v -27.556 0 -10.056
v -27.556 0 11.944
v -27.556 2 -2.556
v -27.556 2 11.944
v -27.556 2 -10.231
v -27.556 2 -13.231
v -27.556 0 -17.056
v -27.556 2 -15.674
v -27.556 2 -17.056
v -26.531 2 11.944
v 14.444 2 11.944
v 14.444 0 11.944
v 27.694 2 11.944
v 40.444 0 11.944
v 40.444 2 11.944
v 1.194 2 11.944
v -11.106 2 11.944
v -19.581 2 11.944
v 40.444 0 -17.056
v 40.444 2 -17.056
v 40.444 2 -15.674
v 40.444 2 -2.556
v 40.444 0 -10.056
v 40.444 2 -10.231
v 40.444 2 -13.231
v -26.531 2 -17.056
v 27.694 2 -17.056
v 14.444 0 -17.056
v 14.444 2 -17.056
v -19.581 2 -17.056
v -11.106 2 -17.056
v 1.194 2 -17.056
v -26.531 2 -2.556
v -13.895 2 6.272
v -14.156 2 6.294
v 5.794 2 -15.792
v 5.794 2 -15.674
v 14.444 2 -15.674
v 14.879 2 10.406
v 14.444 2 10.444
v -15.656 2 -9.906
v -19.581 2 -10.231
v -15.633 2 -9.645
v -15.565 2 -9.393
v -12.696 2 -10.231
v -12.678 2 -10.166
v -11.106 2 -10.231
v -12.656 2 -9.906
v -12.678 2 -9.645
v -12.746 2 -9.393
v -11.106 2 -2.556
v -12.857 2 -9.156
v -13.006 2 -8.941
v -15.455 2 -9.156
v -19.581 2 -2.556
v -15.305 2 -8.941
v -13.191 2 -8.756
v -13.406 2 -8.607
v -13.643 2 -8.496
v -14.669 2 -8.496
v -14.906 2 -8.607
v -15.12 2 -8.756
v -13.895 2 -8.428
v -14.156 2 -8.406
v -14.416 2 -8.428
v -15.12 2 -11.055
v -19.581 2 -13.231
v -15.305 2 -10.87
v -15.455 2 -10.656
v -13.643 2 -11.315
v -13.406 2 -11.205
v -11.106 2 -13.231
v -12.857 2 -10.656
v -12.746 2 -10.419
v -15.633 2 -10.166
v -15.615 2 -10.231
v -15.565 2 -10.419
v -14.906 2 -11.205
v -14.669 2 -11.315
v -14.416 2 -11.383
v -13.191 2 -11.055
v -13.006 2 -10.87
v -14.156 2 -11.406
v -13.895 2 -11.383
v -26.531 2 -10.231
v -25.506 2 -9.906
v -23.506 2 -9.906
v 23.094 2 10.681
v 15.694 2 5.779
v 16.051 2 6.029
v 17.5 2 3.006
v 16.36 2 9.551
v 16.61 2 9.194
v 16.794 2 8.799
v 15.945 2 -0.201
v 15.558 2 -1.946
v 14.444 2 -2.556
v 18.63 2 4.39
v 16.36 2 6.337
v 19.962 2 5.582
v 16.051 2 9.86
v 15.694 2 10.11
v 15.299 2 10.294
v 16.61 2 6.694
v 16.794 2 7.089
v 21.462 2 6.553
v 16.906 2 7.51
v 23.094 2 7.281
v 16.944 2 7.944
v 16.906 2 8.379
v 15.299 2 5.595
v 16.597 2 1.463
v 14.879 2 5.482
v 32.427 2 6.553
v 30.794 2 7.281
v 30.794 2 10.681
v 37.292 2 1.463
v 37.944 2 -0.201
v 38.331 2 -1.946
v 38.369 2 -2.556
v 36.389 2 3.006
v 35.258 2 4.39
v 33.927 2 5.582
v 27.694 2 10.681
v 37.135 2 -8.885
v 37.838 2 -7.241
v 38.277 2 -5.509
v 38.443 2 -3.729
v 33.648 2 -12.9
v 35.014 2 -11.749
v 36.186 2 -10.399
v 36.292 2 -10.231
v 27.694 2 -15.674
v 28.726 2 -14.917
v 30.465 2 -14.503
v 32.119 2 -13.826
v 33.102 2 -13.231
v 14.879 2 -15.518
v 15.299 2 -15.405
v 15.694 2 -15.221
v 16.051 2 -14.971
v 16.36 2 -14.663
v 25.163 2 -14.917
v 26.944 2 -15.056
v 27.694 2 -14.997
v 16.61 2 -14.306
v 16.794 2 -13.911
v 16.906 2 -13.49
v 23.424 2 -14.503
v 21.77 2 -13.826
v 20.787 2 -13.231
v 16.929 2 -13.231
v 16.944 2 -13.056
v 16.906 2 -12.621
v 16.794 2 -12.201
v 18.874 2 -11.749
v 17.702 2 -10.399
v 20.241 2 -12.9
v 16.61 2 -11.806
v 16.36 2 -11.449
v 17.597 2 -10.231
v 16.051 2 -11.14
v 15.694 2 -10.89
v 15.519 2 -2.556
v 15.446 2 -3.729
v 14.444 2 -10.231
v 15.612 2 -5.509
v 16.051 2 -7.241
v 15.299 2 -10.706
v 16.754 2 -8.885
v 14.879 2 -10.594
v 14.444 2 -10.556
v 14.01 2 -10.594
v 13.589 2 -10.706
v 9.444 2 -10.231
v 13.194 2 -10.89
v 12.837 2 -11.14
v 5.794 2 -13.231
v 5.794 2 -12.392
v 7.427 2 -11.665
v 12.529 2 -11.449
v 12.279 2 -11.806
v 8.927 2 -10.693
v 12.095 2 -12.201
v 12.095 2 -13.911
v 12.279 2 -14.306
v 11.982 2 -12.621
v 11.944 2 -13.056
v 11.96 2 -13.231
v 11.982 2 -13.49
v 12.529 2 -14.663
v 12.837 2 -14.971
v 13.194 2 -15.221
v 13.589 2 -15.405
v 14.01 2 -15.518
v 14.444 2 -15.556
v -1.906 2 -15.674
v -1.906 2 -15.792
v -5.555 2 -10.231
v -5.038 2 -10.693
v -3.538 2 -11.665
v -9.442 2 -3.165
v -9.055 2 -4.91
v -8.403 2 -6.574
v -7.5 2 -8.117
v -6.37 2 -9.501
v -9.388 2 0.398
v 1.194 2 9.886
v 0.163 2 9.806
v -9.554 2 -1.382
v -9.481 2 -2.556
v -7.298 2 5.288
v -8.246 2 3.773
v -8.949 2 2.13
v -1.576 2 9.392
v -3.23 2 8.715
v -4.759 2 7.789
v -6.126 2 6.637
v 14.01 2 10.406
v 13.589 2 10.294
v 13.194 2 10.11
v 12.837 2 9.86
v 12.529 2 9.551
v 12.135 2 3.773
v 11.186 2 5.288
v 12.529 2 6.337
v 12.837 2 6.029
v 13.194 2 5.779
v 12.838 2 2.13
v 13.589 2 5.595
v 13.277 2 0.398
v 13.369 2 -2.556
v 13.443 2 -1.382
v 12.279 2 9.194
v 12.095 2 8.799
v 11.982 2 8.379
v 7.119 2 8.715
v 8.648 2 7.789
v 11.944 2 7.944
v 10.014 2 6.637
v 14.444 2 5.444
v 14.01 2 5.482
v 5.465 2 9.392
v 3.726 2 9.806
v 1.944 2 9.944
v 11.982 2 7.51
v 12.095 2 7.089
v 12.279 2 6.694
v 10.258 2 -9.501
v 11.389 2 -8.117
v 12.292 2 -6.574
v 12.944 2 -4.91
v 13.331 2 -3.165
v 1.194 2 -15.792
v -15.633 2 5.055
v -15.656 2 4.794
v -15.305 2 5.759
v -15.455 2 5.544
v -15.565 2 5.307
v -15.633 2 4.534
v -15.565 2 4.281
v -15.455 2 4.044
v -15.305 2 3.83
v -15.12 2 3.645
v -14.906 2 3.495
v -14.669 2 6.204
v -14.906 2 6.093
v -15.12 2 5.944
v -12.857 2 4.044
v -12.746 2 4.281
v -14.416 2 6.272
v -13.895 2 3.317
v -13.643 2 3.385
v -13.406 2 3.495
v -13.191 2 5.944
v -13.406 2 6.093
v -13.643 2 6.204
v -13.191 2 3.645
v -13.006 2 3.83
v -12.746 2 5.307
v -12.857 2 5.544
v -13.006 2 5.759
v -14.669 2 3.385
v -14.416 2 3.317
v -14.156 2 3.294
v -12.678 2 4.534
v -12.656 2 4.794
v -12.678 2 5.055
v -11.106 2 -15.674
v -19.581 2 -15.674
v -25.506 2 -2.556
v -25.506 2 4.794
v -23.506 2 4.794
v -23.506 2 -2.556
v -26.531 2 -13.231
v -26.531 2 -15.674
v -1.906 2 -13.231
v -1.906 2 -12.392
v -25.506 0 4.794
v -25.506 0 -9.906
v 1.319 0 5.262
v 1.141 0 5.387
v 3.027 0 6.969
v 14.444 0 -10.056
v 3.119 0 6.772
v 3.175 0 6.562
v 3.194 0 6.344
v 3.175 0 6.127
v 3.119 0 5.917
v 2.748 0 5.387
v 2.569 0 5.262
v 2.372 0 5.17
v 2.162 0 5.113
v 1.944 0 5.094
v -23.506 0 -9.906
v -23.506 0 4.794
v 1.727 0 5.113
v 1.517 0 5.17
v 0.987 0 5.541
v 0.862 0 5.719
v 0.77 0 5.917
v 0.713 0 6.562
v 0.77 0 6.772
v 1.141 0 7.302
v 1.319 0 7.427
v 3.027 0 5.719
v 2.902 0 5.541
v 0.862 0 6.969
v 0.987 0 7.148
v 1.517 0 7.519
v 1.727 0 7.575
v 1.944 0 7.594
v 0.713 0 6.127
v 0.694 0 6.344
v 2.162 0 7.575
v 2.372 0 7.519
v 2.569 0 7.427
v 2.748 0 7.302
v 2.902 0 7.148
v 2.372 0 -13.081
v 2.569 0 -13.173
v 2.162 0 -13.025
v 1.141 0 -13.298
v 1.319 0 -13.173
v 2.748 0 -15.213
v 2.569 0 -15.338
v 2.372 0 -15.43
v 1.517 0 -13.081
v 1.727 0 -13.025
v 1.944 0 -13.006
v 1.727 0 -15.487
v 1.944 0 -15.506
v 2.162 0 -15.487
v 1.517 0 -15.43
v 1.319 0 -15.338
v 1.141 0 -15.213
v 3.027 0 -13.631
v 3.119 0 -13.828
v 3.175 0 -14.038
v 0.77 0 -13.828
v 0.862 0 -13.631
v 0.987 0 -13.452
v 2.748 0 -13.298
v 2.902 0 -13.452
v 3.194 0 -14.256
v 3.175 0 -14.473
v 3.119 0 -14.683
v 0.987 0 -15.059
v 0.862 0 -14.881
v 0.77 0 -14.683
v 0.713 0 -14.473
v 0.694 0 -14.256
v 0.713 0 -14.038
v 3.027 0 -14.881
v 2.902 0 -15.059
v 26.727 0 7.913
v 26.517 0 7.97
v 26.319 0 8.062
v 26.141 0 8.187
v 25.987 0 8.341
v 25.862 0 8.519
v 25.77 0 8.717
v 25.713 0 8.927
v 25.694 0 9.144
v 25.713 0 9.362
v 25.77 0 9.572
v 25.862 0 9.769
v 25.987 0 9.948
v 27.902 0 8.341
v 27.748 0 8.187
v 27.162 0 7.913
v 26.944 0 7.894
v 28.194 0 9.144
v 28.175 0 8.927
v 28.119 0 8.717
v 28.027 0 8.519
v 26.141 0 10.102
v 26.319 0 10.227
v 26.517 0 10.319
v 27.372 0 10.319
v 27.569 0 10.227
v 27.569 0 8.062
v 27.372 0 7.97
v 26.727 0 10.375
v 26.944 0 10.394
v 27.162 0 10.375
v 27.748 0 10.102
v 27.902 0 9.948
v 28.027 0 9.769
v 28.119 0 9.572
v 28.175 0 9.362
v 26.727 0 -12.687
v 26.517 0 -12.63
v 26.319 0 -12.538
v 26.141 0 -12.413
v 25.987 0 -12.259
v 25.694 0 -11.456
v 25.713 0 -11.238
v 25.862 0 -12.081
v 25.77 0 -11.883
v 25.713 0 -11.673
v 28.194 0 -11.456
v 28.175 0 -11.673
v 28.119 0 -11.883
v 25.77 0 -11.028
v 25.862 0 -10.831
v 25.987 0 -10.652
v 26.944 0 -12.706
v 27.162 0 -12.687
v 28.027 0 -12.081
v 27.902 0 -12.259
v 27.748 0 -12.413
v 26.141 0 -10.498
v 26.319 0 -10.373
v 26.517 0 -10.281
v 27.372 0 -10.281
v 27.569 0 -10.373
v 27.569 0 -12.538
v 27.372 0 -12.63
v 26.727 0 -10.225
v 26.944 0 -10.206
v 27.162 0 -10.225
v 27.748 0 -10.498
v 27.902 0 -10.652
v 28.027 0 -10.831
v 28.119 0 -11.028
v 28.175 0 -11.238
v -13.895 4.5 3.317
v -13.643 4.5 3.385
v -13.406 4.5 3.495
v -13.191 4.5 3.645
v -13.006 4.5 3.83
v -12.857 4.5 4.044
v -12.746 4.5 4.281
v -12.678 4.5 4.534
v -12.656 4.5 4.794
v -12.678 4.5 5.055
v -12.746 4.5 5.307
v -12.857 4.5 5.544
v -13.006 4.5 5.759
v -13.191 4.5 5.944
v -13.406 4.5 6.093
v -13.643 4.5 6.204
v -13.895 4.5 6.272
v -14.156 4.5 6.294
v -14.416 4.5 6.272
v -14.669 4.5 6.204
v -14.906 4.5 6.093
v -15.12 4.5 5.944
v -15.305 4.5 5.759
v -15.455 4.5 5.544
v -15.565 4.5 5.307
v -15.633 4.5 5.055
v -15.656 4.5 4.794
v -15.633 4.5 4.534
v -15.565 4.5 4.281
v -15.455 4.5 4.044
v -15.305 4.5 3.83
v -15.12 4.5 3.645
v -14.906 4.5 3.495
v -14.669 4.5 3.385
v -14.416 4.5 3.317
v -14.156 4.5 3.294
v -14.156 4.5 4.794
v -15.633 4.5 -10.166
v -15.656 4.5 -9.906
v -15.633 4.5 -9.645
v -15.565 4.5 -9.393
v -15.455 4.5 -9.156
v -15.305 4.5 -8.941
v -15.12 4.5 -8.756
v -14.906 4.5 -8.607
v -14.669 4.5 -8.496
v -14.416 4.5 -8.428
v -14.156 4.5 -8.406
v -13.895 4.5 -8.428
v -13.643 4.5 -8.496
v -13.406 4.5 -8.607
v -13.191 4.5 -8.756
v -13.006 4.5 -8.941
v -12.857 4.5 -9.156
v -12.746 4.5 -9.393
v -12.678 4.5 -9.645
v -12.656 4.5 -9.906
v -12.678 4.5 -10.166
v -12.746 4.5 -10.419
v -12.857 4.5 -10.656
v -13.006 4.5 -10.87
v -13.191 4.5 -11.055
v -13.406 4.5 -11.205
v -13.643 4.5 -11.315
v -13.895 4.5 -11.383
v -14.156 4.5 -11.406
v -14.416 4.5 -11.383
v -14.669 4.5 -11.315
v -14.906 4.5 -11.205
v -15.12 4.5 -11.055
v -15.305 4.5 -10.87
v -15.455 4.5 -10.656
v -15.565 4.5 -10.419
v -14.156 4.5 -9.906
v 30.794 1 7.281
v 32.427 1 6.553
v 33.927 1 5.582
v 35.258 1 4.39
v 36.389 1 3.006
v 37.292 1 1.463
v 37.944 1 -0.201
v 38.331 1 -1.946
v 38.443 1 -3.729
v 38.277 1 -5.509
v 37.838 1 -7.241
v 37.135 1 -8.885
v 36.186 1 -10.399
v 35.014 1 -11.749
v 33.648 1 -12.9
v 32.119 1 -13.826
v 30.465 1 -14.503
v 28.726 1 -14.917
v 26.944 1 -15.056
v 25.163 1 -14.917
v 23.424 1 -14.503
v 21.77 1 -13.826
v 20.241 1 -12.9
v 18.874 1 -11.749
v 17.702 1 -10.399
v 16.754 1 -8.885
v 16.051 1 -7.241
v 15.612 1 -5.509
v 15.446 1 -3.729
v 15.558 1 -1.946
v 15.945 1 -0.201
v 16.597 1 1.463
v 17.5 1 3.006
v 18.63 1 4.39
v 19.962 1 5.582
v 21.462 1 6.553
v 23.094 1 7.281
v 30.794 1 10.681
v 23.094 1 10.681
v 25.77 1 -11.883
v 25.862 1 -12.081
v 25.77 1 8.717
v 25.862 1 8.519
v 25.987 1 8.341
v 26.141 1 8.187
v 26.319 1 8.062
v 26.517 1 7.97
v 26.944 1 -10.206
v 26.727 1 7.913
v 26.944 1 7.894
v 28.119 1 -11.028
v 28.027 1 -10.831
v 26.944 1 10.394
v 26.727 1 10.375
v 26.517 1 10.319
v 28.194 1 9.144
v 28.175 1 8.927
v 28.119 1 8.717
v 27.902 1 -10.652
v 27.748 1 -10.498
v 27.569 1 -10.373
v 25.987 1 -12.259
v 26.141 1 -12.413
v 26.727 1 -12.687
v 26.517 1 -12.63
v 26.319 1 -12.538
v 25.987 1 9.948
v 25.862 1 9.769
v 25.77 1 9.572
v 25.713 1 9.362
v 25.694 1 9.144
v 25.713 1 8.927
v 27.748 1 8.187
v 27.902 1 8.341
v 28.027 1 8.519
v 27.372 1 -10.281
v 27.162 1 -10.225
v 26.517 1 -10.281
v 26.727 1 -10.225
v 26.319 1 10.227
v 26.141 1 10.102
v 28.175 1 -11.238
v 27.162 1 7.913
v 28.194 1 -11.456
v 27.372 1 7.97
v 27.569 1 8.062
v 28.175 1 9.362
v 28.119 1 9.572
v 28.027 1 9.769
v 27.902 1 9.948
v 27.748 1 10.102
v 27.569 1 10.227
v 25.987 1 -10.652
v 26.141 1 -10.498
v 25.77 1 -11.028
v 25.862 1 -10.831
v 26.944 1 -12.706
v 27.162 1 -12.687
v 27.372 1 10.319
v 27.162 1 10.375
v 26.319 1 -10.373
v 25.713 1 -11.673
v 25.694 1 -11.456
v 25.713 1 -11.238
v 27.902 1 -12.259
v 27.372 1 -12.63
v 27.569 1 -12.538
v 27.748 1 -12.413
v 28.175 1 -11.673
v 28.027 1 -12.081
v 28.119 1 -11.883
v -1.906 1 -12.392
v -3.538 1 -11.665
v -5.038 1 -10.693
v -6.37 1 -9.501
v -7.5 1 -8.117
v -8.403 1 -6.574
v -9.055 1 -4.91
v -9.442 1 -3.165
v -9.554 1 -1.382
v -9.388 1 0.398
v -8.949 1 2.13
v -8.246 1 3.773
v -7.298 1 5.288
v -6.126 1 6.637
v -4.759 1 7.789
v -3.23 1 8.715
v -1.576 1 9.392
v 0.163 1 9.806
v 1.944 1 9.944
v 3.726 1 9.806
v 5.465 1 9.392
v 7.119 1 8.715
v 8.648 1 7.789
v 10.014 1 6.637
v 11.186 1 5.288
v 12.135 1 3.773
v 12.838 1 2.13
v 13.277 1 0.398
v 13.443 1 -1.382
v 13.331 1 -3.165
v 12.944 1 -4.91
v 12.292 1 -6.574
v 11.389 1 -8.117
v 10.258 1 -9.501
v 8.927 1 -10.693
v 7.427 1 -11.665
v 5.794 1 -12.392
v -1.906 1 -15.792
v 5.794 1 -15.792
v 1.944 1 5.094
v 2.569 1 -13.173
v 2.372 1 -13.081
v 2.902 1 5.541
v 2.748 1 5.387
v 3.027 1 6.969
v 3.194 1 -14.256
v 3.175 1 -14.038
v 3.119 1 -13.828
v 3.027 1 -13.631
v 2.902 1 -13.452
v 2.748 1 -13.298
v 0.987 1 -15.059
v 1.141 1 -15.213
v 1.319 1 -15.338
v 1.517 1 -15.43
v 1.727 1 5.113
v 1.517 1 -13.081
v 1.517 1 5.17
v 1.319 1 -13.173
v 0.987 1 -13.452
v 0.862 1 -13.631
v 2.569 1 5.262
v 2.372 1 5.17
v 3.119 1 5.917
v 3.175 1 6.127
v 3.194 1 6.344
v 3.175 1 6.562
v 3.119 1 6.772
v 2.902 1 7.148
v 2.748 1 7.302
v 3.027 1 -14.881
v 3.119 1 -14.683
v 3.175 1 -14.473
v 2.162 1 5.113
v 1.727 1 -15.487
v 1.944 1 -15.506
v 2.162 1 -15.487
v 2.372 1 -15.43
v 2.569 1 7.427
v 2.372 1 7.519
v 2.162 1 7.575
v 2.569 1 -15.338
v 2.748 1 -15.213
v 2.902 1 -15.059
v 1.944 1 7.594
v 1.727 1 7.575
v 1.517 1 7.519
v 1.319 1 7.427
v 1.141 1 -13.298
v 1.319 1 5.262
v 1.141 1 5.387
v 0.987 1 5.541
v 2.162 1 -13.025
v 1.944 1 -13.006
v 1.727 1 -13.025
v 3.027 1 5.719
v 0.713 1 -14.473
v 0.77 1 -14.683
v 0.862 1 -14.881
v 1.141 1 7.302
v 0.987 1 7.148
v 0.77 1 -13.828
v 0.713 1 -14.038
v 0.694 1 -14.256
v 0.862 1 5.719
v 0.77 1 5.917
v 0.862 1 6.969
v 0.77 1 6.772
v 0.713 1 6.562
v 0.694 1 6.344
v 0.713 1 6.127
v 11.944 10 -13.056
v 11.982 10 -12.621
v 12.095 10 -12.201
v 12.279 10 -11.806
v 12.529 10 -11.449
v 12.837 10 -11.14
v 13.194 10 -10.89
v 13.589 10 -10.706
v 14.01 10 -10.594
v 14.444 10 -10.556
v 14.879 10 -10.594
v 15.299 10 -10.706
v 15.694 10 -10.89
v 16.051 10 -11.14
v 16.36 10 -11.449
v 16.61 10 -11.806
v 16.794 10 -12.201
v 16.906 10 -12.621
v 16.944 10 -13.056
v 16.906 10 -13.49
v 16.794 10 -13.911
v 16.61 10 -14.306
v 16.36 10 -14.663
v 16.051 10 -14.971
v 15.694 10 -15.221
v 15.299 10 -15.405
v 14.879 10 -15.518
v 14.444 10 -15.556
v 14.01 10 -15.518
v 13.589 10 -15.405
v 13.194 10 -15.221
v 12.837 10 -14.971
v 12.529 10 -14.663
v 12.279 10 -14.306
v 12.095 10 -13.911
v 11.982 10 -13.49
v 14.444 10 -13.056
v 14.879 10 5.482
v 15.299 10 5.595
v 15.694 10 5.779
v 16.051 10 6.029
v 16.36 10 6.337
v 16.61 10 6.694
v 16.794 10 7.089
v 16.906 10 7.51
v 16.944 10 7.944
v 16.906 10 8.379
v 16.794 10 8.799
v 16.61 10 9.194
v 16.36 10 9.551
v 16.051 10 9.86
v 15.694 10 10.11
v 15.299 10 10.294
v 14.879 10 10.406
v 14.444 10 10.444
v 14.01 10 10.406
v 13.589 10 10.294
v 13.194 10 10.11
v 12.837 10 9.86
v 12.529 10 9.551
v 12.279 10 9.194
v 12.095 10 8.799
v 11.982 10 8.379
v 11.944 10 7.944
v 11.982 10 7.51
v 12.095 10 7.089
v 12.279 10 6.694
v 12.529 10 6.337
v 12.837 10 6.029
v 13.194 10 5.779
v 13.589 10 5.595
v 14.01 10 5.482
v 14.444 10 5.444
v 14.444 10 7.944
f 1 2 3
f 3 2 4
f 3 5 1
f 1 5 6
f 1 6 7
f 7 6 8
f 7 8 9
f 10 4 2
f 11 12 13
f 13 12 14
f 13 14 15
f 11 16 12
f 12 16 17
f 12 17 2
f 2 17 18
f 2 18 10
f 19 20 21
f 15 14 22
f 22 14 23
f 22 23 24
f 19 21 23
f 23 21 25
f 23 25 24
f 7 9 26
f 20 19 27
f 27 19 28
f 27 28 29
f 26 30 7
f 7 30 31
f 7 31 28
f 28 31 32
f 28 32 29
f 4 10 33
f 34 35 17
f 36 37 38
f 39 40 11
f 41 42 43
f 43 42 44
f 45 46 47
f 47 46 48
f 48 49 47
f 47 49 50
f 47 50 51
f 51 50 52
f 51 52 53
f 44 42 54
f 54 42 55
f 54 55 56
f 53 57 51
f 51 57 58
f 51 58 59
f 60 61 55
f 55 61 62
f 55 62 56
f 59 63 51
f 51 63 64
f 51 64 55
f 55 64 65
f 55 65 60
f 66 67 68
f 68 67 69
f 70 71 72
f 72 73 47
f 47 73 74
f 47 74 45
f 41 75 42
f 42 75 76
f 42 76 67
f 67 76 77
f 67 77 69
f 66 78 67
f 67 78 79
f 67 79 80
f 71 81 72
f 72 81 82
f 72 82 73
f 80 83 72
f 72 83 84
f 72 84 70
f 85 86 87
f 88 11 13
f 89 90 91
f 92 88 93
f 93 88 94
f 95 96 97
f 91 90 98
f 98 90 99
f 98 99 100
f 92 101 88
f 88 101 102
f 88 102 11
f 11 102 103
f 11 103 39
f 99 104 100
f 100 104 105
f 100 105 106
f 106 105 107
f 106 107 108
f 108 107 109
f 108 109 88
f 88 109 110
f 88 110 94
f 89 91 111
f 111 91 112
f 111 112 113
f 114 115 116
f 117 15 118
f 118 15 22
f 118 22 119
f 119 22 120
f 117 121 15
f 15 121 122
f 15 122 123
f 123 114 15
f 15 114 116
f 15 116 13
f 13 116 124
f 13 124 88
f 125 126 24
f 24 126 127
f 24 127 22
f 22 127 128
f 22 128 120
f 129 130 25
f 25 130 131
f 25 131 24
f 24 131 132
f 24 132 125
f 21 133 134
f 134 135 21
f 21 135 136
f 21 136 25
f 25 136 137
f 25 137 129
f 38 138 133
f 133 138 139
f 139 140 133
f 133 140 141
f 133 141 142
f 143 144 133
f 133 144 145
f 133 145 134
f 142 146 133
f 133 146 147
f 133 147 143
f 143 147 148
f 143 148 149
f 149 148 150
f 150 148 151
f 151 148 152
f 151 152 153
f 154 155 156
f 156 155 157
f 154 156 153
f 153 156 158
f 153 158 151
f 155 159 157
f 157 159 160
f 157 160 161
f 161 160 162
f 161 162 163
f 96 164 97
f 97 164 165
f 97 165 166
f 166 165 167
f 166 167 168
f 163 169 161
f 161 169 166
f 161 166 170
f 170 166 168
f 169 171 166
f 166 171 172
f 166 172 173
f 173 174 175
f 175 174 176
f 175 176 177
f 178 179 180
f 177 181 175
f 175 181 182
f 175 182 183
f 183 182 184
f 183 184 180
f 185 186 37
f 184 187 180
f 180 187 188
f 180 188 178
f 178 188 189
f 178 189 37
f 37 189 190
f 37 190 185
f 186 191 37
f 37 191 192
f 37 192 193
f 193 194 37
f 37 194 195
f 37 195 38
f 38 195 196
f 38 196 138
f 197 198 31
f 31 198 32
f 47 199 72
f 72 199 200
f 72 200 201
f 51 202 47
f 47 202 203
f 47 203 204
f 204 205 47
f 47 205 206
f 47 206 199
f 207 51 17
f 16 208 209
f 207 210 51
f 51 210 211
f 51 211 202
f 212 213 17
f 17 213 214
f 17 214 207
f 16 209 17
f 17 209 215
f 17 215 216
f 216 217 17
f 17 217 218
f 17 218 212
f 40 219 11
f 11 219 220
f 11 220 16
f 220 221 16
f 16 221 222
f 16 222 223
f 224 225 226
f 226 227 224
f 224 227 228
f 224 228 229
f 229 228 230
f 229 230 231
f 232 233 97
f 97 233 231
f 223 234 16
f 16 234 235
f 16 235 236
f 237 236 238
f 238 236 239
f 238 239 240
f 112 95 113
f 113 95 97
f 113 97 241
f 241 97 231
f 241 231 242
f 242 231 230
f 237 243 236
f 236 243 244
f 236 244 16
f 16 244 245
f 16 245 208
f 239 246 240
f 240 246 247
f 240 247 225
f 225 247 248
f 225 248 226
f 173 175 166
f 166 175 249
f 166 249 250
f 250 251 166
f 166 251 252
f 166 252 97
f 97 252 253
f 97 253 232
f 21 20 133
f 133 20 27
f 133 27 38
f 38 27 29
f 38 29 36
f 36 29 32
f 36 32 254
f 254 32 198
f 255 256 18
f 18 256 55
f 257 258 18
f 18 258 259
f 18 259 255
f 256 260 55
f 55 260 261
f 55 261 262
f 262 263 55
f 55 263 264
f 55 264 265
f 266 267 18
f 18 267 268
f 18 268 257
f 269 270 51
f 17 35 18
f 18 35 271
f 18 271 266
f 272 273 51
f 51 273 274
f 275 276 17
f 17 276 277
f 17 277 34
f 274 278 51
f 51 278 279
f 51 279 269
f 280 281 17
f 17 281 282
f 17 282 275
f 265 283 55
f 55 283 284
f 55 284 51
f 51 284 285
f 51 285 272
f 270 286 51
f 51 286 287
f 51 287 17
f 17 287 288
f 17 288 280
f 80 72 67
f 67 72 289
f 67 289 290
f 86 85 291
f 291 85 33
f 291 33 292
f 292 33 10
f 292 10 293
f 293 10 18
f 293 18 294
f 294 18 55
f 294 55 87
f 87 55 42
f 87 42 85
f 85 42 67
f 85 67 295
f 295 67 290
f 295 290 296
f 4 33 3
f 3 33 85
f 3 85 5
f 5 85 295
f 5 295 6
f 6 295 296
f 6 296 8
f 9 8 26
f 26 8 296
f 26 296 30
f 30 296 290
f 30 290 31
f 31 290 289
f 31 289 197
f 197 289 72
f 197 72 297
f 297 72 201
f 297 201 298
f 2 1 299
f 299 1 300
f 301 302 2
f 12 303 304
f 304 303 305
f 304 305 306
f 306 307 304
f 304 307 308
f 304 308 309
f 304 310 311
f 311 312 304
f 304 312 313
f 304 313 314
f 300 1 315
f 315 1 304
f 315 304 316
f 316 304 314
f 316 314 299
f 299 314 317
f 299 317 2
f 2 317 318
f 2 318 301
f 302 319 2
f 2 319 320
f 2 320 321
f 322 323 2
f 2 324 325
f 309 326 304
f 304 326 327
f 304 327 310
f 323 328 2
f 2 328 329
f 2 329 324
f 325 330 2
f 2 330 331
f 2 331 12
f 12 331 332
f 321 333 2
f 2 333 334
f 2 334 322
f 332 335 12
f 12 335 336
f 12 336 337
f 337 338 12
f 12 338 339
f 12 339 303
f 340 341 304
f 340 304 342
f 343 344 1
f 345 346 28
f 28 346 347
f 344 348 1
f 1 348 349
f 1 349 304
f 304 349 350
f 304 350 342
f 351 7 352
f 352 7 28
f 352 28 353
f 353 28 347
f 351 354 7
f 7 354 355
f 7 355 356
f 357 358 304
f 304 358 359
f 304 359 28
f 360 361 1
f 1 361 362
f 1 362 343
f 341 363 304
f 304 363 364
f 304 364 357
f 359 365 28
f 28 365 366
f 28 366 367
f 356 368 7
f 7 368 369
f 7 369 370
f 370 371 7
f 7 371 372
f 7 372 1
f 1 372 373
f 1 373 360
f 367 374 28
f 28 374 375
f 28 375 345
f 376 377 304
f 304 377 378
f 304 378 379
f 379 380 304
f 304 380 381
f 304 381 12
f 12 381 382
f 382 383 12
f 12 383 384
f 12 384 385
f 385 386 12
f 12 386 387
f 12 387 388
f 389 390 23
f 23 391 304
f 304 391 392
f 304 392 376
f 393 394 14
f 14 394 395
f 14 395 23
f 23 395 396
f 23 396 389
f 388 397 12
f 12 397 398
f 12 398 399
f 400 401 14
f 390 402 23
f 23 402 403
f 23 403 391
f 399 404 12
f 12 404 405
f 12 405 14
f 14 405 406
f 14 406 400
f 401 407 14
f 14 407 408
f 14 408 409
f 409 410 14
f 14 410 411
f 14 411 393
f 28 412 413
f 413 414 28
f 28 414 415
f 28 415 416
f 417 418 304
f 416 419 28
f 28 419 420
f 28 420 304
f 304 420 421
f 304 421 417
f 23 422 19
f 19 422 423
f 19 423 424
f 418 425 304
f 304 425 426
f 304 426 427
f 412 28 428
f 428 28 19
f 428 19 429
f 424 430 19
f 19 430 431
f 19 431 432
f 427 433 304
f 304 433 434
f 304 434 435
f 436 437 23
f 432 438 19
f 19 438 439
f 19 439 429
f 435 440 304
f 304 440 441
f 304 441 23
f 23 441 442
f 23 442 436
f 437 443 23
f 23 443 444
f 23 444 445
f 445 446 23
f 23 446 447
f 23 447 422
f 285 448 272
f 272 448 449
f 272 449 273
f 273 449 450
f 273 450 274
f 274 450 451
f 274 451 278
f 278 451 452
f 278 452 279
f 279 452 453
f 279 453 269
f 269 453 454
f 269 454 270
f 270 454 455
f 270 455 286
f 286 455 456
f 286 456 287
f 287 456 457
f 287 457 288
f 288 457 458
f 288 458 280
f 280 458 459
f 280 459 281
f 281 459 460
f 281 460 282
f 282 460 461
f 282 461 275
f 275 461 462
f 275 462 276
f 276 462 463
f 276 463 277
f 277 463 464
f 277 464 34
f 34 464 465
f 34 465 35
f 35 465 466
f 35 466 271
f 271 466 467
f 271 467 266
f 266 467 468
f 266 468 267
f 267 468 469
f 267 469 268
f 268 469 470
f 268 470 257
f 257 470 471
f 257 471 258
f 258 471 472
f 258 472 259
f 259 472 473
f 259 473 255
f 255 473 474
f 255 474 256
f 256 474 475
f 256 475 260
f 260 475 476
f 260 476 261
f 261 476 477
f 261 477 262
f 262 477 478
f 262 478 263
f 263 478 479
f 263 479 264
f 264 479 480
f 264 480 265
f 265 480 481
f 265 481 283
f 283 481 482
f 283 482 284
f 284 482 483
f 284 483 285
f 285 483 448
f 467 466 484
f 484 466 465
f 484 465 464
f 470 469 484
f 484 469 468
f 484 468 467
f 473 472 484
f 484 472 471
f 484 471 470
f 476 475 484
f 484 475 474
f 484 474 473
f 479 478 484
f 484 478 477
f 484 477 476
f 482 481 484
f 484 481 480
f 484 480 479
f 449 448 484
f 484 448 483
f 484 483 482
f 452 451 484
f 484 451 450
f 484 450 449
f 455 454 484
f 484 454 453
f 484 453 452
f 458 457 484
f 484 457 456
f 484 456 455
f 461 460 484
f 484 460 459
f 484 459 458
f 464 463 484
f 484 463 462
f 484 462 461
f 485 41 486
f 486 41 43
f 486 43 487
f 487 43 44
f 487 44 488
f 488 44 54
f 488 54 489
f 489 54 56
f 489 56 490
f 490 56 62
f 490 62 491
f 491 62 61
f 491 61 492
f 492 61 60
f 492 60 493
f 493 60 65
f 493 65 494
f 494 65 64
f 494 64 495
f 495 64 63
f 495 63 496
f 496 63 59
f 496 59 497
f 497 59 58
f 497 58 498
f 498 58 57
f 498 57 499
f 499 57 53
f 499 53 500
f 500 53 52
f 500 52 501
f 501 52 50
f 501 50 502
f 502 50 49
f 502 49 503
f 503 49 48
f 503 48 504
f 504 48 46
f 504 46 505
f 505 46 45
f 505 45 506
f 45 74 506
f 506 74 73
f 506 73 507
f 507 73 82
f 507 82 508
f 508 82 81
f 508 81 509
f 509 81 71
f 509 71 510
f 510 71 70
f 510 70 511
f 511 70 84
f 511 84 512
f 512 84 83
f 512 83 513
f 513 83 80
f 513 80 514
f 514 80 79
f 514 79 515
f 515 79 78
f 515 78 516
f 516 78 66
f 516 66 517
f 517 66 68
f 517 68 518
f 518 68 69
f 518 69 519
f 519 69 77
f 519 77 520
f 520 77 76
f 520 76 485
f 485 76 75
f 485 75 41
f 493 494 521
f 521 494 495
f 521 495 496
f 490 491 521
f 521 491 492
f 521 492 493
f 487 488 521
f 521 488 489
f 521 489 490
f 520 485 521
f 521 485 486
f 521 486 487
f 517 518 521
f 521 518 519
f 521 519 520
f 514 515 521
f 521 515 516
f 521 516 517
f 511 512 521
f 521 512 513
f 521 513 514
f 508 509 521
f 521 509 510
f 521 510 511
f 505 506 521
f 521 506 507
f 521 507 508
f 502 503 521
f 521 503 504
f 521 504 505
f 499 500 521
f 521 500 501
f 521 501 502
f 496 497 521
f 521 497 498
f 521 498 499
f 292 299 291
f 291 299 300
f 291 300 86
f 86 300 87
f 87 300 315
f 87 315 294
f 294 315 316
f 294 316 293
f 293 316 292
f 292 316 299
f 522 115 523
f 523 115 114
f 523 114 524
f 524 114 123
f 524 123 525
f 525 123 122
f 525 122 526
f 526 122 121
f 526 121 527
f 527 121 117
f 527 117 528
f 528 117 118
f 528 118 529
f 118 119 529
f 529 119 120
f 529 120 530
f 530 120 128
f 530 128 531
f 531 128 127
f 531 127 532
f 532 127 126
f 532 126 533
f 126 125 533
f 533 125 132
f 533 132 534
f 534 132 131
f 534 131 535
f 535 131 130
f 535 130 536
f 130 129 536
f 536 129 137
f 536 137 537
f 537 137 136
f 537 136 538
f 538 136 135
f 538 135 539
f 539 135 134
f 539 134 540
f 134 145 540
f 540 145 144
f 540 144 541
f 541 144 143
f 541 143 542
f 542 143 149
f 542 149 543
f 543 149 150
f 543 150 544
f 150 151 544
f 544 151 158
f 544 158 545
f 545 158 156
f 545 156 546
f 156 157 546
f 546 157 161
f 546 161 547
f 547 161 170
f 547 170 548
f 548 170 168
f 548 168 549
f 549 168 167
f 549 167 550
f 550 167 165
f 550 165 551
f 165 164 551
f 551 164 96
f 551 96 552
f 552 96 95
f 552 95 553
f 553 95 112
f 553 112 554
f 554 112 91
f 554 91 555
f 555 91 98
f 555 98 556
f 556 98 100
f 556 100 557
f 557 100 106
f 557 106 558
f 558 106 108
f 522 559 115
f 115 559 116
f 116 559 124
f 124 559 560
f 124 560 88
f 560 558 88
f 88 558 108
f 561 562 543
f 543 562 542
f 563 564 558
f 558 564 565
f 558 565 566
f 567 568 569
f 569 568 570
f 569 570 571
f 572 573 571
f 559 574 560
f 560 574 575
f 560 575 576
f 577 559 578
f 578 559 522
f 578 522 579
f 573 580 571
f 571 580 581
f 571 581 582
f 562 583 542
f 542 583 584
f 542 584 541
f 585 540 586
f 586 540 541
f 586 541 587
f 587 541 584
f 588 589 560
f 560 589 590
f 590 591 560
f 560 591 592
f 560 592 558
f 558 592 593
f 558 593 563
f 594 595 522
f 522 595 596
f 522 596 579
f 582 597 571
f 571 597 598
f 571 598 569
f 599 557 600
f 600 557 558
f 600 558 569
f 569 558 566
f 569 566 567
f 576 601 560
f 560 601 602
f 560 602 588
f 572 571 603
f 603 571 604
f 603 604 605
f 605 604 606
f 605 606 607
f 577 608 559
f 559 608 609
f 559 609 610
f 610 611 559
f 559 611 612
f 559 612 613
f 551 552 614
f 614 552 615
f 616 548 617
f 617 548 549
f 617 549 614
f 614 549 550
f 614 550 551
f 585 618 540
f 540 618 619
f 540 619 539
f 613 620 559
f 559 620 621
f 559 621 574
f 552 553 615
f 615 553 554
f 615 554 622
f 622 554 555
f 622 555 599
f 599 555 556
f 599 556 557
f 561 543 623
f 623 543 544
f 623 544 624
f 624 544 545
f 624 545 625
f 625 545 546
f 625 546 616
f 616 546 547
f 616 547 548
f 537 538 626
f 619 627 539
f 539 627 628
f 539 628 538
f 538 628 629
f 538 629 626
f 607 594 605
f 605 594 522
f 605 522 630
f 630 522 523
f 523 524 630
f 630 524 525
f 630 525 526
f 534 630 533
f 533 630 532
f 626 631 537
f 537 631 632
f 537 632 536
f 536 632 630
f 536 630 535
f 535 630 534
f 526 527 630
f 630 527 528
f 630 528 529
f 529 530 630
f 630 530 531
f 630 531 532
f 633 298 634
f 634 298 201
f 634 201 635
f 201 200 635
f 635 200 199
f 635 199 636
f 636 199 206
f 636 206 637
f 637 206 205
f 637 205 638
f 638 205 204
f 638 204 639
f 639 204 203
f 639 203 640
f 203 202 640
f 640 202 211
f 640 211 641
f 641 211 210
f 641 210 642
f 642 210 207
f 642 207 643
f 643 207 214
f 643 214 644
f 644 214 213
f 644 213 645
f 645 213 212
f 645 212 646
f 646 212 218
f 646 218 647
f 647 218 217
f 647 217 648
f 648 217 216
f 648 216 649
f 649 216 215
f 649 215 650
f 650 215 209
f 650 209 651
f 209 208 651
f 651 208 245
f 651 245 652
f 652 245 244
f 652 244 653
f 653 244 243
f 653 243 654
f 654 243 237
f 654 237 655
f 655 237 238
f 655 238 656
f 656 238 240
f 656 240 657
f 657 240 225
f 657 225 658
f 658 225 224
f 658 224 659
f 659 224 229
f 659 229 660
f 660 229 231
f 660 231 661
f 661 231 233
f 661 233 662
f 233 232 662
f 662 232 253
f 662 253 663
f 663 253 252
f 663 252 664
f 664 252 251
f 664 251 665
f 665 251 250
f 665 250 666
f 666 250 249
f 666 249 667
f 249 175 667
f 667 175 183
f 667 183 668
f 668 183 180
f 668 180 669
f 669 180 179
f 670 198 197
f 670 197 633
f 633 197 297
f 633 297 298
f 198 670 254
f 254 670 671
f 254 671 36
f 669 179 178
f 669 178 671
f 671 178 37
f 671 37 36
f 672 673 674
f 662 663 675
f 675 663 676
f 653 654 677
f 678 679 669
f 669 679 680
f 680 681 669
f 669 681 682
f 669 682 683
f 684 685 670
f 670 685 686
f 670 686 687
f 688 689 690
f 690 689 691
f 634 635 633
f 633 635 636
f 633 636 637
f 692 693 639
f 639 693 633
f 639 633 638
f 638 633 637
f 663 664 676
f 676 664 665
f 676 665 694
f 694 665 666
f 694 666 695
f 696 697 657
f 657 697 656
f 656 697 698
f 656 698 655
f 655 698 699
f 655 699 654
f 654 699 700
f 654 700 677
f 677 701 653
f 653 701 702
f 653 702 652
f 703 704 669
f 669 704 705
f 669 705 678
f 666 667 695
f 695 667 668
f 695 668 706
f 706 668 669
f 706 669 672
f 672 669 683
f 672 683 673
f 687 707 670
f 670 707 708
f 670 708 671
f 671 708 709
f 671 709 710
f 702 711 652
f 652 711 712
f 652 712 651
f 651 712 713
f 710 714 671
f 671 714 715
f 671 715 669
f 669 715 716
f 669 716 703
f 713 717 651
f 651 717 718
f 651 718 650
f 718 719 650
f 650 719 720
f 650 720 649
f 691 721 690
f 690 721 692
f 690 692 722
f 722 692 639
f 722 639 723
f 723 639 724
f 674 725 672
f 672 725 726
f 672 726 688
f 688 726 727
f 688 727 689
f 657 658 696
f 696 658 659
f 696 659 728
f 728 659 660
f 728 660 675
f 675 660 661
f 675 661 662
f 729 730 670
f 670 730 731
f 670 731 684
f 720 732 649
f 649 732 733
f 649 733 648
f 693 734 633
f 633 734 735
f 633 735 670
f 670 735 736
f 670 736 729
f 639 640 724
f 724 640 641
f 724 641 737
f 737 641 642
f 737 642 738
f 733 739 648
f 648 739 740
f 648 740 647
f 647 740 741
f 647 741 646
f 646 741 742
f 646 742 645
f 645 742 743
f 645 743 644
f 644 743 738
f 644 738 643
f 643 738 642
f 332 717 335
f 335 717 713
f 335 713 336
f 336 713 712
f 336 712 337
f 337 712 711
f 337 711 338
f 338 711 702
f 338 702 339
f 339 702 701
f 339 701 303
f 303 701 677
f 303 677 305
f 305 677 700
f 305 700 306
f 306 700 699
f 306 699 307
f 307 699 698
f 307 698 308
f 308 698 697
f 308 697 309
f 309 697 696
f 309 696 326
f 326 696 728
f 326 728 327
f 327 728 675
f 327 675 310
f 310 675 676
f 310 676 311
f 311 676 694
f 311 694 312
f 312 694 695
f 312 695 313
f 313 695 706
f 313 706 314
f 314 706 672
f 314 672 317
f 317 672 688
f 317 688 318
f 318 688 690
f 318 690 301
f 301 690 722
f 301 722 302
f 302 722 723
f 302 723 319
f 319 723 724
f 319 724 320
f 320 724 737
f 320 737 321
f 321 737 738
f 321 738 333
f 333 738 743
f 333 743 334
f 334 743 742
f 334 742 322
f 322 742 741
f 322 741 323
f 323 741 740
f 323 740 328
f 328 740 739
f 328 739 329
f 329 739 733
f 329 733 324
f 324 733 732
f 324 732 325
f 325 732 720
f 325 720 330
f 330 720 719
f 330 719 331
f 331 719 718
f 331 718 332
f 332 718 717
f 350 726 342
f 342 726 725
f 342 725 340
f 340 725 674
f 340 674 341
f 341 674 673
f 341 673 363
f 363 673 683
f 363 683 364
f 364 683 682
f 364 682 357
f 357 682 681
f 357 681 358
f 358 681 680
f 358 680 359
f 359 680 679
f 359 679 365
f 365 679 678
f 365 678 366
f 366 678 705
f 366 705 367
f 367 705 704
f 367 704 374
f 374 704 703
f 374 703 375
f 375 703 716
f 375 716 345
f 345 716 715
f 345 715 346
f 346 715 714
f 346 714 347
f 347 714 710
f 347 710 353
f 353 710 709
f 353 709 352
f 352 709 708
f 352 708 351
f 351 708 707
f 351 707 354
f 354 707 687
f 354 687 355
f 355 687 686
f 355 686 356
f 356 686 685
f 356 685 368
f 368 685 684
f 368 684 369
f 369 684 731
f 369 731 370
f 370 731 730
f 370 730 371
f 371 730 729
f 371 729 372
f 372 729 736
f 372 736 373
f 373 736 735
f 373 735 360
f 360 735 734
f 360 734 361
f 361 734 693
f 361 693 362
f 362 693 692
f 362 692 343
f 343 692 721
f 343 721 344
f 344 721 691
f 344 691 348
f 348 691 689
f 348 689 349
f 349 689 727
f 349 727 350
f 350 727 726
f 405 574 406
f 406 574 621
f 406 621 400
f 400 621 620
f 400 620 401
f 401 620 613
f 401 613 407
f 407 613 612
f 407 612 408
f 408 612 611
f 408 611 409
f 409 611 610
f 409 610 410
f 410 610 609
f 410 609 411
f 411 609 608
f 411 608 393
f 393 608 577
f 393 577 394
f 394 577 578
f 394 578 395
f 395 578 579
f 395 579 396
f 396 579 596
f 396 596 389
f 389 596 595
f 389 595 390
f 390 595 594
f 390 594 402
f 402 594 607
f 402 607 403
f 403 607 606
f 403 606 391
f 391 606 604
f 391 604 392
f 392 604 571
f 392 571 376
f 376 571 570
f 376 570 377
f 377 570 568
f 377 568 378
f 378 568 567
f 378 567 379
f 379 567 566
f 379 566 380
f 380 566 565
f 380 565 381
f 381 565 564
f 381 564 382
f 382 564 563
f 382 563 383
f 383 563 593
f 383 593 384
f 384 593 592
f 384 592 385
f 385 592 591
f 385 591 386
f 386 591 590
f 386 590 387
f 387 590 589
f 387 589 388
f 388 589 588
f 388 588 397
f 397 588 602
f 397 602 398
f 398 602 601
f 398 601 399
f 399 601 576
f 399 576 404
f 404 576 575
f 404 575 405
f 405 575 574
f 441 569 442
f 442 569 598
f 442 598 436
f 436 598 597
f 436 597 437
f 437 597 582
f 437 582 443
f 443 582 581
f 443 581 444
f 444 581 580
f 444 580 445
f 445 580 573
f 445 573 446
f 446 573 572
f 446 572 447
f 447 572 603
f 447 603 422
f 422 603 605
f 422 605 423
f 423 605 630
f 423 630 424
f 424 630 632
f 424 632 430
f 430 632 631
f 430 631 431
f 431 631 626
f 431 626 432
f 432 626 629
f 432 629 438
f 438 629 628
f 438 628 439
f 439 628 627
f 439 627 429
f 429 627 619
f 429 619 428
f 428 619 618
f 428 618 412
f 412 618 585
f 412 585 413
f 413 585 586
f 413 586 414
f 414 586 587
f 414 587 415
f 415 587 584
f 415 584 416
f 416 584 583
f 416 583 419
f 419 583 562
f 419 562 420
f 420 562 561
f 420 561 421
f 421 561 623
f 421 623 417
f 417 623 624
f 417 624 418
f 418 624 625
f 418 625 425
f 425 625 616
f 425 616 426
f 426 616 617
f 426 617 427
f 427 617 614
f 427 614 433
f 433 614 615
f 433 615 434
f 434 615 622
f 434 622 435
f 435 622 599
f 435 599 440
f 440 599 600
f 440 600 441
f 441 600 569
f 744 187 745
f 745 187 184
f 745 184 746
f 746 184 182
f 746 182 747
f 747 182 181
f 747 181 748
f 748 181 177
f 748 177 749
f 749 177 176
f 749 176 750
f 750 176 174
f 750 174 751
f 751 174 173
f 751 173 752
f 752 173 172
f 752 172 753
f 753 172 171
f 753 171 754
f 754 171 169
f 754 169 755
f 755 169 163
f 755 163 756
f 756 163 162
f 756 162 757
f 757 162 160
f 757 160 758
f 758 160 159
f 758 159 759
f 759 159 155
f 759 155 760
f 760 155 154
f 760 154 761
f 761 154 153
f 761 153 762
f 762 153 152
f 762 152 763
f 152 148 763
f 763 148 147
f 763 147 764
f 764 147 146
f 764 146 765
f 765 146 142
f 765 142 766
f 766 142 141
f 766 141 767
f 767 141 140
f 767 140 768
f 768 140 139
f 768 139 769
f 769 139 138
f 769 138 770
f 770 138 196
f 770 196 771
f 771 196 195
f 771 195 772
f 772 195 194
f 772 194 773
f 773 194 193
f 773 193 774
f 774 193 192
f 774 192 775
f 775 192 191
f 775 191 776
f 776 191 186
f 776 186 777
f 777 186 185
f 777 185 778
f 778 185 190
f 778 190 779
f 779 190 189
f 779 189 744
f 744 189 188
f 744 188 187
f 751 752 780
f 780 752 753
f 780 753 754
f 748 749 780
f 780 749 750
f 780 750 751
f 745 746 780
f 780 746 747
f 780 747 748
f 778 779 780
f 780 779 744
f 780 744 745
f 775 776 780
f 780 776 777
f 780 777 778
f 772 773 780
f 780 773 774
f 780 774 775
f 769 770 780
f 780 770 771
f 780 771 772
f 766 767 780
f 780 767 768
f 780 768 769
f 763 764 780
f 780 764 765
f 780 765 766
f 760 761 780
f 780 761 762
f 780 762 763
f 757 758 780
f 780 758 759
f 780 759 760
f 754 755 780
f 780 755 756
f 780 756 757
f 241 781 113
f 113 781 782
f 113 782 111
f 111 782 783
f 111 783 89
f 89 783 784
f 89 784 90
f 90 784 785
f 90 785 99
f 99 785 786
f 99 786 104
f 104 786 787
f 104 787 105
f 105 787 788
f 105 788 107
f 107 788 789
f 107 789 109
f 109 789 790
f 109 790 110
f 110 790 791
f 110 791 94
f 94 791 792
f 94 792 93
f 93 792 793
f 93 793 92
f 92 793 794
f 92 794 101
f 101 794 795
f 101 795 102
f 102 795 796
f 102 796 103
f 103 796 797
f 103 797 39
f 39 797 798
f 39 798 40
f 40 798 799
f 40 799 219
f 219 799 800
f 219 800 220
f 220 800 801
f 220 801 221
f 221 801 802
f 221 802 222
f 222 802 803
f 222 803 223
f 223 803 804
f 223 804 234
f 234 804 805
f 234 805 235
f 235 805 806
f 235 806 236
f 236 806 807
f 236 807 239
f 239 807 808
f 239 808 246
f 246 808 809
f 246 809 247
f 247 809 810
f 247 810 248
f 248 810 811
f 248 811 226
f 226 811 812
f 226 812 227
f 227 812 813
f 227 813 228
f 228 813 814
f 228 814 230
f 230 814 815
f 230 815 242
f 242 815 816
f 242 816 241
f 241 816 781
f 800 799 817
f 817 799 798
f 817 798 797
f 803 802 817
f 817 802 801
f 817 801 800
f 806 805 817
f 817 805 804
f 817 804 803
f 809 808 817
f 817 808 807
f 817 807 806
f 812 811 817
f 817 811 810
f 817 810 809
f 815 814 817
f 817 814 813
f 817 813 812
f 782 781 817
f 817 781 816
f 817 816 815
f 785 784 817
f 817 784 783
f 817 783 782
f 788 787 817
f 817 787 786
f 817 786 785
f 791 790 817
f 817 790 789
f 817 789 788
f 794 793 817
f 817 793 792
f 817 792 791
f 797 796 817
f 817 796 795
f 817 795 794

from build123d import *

# Parameters (mm, degrees)
SKETCH1_W             = 68
SKETCH1_H             = 29
BASE_DEPTH            = 2
SKETCH2_R             = 1.5
LEFT_PEG_DEPTH        = 2.5
SKETCH3_R             = 1.5
RIGHT_PEG_DEPTH       = 2.5
SKETCH4_W             = 2
SKETCH4_H             = 14.7
ACCEL_WIRE_HOLE_DEPTH = 2.5
RIGHT_BATTERY_DEPTH   = 1
LEFT_BATTERY_DEPTH    = 1
SKETCH12_R            = 1.25
CUT_EXTRUDE10_DEPTH   = 1.5
SKETCH13_R            = 1.25
CUT_EXTRUDE11_DEPTH   = 1.5
SKETCH14_R            = 2.5
BOSS_EXTRUDE1_DEPTH   = 8


with BuildPart() as part:
    # Sketch1 → base (new body)
    with BuildSketch(Plane(origin=(0, 0, 0), x_dir=(1, 0, 0), z_dir=(0, 1, 0))):
        with Locations((6.444444444, 2.555555556)):
            Rectangle(SKETCH1_W, SKETCH1_H)
    extrude(amount=BASE_DEPTH)

    # Sketch2 → left peg (add)
    with BuildSketch(Plane(origin=(0, 2, 0), x_dir=(1, 0, 0), z_dir=(0, 1, 0))):
        with Locations(Location((-14.155555556, -4.794444444, 0), (0, 0, 270))):
            Circle(SKETCH2_R)
    extrude(amount=LEFT_PEG_DEPTH)

    # Sketch3 → right peg (add)
    with BuildSketch(Plane(origin=(0, 2, 0), x_dir=(1, 0, 0), z_dir=(0, 1, 0))):
        with Locations(Location((-14.155555556, 9.905555556, 0), (0, 0, 270))):
            Circle(SKETCH3_R)
    extrude(amount=RIGHT_PEG_DEPTH)

    # Sketch4 → accel wire hole (cut)
    with BuildSketch(Plane(origin=(0, 2, 0), x_dir=(1, 0, 0), z_dir=(0, 1, 0))):
        with Locations((-24.505555556, 2.555555556)):
            Rectangle(SKETCH4_W, SKETCH4_H)
    extrude(amount=-ACCEL_WIRE_HOLE_DEPTH, mode=Mode.SUBTRACT)

    # Sketch10 → right battery (cut)
    with BuildSketch(Plane(origin=(0, 2, 0), x_dir=(1, 0, 0), z_dir=(0, 1, 0))):
        with BuildLine():
            ThreePointArc((38.444444444, 3.555555556), (20.312137154, 12.950367954), (23.094444444, -7.280841447))
            Line((23.094444444, -7.280841447), (30.794444444, -7.280841447))
            ThreePointArc((30.794444444, -7.280841447), (36.339256843, -3.076751735), (38.444444444, 3.555555556))
        make_face()
        with BuildLine():
            Line((30.794444444, -7.280841447), (23.094444444, -7.280841447))
            ThreePointArc((23.094444444, -7.280841447), (26.944444444, -7.944444444), (30.794444444, -7.280841447))
        make_face()
        with BuildLine():
            ThreePointArc((30.794444444, -7.280841447), (26.944444444, -7.944444444), (23.094444444, -7.280841447))
            Line((23.094444444, -7.280841447), (23.094444444, -10.680841447))
            Line((23.094444444, -10.680841447), (30.794444444, -10.680841447))
            Line((30.794444444, -10.680841447), (30.794444444, -7.280841447))
        make_face()
    extrude(amount=-RIGHT_BATTERY_DEPTH, mode=Mode.SUBTRACT)

    # Sketch11 → left battery (cut)
    with BuildSketch(Plane(origin=(0, 2, 0), x_dir=(1, 0, 0), z_dir=(0, 1, 0))):
        with BuildLine():
            ThreePointArc((5.794444444, 12.391952558), (1.944444444, 13.055555556), (-1.905555556, 12.391952558))
            Line((-1.905555556, 12.391952558), (5.794444444, 12.391952558))
        make_face()
        with BuildLine():
            Line((5.794444444, 12.391952558), (-1.905555556, 12.391952558))
            ThreePointArc((-1.905555556, 12.391952558), (-4.687862846, -7.839256843), (13.444444444, 1.555555556))
            ThreePointArc((13.444444444, 1.555555556), (11.339256843, 8.187862846), (5.794444444, 12.391952558))
        make_face()
        with BuildLine():
            Line((-1.905555556, 15.791952558), (-1.905555556, 12.391952558))
            ThreePointArc((-1.905555556, 12.391952558), (1.944444444, 13.055555556), (5.794444444, 12.391952558))
            Line((5.794444444, 12.391952558), (5.794444444, 15.791952558))
            Line((5.794444444, 15.791952558), (-1.905555556, 15.791952558))
        make_face()
    extrude(amount=-LEFT_BATTERY_DEPTH, mode=Mode.SUBTRACT)

    # Sketch12 → Cut-Extrude10 (cut)
    with BuildSketch(Plane(origin=(0, 1, 0), x_dir=(1, 0, 0), z_dir=(0, 1, 0))):
        with Locations(Location((1.944444444, 14.255555556, 0), (0, 0, 270))):
            Circle(SKETCH12_R)
        with Locations(Location((1.944444444, -6.344444444, 0), (0, 0, 270))):
            Circle(SKETCH12_R)
    extrude(amount=-CUT_EXTRUDE10_DEPTH, mode=Mode.SUBTRACT)

    # Sketch13 → Cut-Extrude11 (cut)
    with BuildSketch(Plane(origin=(0, 1, 0), x_dir=(1, 0, 0), z_dir=(0, 1, 0))):
        with Locations(Location((26.944444444, 11.455555556, 0), (0, 0, 270))):
            Circle(SKETCH13_R)
        with Locations(Location((26.944444444, -9.144444444, 0), (0, 0, 270))):
            Circle(SKETCH13_R)
    extrude(amount=-CUT_EXTRUDE11_DEPTH, mode=Mode.SUBTRACT)

    # Sketch14 → Boss-Extrude1 (add)
    with BuildSketch(Plane(origin=(0, 2, 0), x_dir=(1, 0, 0), z_dir=(0, 1, 0))):
        with Locations(Location((14.444444444, 13.055555556, 0), (0, 0, 270))):
            Circle(SKETCH14_R)
        with Locations(Location((14.444444444, -7.944444444, 0), (0, 0, 270))):
            Circle(SKETCH14_R)
    extrude(amount=BOSS_EXTRUDE1_DEPTH)


solid = part.part
